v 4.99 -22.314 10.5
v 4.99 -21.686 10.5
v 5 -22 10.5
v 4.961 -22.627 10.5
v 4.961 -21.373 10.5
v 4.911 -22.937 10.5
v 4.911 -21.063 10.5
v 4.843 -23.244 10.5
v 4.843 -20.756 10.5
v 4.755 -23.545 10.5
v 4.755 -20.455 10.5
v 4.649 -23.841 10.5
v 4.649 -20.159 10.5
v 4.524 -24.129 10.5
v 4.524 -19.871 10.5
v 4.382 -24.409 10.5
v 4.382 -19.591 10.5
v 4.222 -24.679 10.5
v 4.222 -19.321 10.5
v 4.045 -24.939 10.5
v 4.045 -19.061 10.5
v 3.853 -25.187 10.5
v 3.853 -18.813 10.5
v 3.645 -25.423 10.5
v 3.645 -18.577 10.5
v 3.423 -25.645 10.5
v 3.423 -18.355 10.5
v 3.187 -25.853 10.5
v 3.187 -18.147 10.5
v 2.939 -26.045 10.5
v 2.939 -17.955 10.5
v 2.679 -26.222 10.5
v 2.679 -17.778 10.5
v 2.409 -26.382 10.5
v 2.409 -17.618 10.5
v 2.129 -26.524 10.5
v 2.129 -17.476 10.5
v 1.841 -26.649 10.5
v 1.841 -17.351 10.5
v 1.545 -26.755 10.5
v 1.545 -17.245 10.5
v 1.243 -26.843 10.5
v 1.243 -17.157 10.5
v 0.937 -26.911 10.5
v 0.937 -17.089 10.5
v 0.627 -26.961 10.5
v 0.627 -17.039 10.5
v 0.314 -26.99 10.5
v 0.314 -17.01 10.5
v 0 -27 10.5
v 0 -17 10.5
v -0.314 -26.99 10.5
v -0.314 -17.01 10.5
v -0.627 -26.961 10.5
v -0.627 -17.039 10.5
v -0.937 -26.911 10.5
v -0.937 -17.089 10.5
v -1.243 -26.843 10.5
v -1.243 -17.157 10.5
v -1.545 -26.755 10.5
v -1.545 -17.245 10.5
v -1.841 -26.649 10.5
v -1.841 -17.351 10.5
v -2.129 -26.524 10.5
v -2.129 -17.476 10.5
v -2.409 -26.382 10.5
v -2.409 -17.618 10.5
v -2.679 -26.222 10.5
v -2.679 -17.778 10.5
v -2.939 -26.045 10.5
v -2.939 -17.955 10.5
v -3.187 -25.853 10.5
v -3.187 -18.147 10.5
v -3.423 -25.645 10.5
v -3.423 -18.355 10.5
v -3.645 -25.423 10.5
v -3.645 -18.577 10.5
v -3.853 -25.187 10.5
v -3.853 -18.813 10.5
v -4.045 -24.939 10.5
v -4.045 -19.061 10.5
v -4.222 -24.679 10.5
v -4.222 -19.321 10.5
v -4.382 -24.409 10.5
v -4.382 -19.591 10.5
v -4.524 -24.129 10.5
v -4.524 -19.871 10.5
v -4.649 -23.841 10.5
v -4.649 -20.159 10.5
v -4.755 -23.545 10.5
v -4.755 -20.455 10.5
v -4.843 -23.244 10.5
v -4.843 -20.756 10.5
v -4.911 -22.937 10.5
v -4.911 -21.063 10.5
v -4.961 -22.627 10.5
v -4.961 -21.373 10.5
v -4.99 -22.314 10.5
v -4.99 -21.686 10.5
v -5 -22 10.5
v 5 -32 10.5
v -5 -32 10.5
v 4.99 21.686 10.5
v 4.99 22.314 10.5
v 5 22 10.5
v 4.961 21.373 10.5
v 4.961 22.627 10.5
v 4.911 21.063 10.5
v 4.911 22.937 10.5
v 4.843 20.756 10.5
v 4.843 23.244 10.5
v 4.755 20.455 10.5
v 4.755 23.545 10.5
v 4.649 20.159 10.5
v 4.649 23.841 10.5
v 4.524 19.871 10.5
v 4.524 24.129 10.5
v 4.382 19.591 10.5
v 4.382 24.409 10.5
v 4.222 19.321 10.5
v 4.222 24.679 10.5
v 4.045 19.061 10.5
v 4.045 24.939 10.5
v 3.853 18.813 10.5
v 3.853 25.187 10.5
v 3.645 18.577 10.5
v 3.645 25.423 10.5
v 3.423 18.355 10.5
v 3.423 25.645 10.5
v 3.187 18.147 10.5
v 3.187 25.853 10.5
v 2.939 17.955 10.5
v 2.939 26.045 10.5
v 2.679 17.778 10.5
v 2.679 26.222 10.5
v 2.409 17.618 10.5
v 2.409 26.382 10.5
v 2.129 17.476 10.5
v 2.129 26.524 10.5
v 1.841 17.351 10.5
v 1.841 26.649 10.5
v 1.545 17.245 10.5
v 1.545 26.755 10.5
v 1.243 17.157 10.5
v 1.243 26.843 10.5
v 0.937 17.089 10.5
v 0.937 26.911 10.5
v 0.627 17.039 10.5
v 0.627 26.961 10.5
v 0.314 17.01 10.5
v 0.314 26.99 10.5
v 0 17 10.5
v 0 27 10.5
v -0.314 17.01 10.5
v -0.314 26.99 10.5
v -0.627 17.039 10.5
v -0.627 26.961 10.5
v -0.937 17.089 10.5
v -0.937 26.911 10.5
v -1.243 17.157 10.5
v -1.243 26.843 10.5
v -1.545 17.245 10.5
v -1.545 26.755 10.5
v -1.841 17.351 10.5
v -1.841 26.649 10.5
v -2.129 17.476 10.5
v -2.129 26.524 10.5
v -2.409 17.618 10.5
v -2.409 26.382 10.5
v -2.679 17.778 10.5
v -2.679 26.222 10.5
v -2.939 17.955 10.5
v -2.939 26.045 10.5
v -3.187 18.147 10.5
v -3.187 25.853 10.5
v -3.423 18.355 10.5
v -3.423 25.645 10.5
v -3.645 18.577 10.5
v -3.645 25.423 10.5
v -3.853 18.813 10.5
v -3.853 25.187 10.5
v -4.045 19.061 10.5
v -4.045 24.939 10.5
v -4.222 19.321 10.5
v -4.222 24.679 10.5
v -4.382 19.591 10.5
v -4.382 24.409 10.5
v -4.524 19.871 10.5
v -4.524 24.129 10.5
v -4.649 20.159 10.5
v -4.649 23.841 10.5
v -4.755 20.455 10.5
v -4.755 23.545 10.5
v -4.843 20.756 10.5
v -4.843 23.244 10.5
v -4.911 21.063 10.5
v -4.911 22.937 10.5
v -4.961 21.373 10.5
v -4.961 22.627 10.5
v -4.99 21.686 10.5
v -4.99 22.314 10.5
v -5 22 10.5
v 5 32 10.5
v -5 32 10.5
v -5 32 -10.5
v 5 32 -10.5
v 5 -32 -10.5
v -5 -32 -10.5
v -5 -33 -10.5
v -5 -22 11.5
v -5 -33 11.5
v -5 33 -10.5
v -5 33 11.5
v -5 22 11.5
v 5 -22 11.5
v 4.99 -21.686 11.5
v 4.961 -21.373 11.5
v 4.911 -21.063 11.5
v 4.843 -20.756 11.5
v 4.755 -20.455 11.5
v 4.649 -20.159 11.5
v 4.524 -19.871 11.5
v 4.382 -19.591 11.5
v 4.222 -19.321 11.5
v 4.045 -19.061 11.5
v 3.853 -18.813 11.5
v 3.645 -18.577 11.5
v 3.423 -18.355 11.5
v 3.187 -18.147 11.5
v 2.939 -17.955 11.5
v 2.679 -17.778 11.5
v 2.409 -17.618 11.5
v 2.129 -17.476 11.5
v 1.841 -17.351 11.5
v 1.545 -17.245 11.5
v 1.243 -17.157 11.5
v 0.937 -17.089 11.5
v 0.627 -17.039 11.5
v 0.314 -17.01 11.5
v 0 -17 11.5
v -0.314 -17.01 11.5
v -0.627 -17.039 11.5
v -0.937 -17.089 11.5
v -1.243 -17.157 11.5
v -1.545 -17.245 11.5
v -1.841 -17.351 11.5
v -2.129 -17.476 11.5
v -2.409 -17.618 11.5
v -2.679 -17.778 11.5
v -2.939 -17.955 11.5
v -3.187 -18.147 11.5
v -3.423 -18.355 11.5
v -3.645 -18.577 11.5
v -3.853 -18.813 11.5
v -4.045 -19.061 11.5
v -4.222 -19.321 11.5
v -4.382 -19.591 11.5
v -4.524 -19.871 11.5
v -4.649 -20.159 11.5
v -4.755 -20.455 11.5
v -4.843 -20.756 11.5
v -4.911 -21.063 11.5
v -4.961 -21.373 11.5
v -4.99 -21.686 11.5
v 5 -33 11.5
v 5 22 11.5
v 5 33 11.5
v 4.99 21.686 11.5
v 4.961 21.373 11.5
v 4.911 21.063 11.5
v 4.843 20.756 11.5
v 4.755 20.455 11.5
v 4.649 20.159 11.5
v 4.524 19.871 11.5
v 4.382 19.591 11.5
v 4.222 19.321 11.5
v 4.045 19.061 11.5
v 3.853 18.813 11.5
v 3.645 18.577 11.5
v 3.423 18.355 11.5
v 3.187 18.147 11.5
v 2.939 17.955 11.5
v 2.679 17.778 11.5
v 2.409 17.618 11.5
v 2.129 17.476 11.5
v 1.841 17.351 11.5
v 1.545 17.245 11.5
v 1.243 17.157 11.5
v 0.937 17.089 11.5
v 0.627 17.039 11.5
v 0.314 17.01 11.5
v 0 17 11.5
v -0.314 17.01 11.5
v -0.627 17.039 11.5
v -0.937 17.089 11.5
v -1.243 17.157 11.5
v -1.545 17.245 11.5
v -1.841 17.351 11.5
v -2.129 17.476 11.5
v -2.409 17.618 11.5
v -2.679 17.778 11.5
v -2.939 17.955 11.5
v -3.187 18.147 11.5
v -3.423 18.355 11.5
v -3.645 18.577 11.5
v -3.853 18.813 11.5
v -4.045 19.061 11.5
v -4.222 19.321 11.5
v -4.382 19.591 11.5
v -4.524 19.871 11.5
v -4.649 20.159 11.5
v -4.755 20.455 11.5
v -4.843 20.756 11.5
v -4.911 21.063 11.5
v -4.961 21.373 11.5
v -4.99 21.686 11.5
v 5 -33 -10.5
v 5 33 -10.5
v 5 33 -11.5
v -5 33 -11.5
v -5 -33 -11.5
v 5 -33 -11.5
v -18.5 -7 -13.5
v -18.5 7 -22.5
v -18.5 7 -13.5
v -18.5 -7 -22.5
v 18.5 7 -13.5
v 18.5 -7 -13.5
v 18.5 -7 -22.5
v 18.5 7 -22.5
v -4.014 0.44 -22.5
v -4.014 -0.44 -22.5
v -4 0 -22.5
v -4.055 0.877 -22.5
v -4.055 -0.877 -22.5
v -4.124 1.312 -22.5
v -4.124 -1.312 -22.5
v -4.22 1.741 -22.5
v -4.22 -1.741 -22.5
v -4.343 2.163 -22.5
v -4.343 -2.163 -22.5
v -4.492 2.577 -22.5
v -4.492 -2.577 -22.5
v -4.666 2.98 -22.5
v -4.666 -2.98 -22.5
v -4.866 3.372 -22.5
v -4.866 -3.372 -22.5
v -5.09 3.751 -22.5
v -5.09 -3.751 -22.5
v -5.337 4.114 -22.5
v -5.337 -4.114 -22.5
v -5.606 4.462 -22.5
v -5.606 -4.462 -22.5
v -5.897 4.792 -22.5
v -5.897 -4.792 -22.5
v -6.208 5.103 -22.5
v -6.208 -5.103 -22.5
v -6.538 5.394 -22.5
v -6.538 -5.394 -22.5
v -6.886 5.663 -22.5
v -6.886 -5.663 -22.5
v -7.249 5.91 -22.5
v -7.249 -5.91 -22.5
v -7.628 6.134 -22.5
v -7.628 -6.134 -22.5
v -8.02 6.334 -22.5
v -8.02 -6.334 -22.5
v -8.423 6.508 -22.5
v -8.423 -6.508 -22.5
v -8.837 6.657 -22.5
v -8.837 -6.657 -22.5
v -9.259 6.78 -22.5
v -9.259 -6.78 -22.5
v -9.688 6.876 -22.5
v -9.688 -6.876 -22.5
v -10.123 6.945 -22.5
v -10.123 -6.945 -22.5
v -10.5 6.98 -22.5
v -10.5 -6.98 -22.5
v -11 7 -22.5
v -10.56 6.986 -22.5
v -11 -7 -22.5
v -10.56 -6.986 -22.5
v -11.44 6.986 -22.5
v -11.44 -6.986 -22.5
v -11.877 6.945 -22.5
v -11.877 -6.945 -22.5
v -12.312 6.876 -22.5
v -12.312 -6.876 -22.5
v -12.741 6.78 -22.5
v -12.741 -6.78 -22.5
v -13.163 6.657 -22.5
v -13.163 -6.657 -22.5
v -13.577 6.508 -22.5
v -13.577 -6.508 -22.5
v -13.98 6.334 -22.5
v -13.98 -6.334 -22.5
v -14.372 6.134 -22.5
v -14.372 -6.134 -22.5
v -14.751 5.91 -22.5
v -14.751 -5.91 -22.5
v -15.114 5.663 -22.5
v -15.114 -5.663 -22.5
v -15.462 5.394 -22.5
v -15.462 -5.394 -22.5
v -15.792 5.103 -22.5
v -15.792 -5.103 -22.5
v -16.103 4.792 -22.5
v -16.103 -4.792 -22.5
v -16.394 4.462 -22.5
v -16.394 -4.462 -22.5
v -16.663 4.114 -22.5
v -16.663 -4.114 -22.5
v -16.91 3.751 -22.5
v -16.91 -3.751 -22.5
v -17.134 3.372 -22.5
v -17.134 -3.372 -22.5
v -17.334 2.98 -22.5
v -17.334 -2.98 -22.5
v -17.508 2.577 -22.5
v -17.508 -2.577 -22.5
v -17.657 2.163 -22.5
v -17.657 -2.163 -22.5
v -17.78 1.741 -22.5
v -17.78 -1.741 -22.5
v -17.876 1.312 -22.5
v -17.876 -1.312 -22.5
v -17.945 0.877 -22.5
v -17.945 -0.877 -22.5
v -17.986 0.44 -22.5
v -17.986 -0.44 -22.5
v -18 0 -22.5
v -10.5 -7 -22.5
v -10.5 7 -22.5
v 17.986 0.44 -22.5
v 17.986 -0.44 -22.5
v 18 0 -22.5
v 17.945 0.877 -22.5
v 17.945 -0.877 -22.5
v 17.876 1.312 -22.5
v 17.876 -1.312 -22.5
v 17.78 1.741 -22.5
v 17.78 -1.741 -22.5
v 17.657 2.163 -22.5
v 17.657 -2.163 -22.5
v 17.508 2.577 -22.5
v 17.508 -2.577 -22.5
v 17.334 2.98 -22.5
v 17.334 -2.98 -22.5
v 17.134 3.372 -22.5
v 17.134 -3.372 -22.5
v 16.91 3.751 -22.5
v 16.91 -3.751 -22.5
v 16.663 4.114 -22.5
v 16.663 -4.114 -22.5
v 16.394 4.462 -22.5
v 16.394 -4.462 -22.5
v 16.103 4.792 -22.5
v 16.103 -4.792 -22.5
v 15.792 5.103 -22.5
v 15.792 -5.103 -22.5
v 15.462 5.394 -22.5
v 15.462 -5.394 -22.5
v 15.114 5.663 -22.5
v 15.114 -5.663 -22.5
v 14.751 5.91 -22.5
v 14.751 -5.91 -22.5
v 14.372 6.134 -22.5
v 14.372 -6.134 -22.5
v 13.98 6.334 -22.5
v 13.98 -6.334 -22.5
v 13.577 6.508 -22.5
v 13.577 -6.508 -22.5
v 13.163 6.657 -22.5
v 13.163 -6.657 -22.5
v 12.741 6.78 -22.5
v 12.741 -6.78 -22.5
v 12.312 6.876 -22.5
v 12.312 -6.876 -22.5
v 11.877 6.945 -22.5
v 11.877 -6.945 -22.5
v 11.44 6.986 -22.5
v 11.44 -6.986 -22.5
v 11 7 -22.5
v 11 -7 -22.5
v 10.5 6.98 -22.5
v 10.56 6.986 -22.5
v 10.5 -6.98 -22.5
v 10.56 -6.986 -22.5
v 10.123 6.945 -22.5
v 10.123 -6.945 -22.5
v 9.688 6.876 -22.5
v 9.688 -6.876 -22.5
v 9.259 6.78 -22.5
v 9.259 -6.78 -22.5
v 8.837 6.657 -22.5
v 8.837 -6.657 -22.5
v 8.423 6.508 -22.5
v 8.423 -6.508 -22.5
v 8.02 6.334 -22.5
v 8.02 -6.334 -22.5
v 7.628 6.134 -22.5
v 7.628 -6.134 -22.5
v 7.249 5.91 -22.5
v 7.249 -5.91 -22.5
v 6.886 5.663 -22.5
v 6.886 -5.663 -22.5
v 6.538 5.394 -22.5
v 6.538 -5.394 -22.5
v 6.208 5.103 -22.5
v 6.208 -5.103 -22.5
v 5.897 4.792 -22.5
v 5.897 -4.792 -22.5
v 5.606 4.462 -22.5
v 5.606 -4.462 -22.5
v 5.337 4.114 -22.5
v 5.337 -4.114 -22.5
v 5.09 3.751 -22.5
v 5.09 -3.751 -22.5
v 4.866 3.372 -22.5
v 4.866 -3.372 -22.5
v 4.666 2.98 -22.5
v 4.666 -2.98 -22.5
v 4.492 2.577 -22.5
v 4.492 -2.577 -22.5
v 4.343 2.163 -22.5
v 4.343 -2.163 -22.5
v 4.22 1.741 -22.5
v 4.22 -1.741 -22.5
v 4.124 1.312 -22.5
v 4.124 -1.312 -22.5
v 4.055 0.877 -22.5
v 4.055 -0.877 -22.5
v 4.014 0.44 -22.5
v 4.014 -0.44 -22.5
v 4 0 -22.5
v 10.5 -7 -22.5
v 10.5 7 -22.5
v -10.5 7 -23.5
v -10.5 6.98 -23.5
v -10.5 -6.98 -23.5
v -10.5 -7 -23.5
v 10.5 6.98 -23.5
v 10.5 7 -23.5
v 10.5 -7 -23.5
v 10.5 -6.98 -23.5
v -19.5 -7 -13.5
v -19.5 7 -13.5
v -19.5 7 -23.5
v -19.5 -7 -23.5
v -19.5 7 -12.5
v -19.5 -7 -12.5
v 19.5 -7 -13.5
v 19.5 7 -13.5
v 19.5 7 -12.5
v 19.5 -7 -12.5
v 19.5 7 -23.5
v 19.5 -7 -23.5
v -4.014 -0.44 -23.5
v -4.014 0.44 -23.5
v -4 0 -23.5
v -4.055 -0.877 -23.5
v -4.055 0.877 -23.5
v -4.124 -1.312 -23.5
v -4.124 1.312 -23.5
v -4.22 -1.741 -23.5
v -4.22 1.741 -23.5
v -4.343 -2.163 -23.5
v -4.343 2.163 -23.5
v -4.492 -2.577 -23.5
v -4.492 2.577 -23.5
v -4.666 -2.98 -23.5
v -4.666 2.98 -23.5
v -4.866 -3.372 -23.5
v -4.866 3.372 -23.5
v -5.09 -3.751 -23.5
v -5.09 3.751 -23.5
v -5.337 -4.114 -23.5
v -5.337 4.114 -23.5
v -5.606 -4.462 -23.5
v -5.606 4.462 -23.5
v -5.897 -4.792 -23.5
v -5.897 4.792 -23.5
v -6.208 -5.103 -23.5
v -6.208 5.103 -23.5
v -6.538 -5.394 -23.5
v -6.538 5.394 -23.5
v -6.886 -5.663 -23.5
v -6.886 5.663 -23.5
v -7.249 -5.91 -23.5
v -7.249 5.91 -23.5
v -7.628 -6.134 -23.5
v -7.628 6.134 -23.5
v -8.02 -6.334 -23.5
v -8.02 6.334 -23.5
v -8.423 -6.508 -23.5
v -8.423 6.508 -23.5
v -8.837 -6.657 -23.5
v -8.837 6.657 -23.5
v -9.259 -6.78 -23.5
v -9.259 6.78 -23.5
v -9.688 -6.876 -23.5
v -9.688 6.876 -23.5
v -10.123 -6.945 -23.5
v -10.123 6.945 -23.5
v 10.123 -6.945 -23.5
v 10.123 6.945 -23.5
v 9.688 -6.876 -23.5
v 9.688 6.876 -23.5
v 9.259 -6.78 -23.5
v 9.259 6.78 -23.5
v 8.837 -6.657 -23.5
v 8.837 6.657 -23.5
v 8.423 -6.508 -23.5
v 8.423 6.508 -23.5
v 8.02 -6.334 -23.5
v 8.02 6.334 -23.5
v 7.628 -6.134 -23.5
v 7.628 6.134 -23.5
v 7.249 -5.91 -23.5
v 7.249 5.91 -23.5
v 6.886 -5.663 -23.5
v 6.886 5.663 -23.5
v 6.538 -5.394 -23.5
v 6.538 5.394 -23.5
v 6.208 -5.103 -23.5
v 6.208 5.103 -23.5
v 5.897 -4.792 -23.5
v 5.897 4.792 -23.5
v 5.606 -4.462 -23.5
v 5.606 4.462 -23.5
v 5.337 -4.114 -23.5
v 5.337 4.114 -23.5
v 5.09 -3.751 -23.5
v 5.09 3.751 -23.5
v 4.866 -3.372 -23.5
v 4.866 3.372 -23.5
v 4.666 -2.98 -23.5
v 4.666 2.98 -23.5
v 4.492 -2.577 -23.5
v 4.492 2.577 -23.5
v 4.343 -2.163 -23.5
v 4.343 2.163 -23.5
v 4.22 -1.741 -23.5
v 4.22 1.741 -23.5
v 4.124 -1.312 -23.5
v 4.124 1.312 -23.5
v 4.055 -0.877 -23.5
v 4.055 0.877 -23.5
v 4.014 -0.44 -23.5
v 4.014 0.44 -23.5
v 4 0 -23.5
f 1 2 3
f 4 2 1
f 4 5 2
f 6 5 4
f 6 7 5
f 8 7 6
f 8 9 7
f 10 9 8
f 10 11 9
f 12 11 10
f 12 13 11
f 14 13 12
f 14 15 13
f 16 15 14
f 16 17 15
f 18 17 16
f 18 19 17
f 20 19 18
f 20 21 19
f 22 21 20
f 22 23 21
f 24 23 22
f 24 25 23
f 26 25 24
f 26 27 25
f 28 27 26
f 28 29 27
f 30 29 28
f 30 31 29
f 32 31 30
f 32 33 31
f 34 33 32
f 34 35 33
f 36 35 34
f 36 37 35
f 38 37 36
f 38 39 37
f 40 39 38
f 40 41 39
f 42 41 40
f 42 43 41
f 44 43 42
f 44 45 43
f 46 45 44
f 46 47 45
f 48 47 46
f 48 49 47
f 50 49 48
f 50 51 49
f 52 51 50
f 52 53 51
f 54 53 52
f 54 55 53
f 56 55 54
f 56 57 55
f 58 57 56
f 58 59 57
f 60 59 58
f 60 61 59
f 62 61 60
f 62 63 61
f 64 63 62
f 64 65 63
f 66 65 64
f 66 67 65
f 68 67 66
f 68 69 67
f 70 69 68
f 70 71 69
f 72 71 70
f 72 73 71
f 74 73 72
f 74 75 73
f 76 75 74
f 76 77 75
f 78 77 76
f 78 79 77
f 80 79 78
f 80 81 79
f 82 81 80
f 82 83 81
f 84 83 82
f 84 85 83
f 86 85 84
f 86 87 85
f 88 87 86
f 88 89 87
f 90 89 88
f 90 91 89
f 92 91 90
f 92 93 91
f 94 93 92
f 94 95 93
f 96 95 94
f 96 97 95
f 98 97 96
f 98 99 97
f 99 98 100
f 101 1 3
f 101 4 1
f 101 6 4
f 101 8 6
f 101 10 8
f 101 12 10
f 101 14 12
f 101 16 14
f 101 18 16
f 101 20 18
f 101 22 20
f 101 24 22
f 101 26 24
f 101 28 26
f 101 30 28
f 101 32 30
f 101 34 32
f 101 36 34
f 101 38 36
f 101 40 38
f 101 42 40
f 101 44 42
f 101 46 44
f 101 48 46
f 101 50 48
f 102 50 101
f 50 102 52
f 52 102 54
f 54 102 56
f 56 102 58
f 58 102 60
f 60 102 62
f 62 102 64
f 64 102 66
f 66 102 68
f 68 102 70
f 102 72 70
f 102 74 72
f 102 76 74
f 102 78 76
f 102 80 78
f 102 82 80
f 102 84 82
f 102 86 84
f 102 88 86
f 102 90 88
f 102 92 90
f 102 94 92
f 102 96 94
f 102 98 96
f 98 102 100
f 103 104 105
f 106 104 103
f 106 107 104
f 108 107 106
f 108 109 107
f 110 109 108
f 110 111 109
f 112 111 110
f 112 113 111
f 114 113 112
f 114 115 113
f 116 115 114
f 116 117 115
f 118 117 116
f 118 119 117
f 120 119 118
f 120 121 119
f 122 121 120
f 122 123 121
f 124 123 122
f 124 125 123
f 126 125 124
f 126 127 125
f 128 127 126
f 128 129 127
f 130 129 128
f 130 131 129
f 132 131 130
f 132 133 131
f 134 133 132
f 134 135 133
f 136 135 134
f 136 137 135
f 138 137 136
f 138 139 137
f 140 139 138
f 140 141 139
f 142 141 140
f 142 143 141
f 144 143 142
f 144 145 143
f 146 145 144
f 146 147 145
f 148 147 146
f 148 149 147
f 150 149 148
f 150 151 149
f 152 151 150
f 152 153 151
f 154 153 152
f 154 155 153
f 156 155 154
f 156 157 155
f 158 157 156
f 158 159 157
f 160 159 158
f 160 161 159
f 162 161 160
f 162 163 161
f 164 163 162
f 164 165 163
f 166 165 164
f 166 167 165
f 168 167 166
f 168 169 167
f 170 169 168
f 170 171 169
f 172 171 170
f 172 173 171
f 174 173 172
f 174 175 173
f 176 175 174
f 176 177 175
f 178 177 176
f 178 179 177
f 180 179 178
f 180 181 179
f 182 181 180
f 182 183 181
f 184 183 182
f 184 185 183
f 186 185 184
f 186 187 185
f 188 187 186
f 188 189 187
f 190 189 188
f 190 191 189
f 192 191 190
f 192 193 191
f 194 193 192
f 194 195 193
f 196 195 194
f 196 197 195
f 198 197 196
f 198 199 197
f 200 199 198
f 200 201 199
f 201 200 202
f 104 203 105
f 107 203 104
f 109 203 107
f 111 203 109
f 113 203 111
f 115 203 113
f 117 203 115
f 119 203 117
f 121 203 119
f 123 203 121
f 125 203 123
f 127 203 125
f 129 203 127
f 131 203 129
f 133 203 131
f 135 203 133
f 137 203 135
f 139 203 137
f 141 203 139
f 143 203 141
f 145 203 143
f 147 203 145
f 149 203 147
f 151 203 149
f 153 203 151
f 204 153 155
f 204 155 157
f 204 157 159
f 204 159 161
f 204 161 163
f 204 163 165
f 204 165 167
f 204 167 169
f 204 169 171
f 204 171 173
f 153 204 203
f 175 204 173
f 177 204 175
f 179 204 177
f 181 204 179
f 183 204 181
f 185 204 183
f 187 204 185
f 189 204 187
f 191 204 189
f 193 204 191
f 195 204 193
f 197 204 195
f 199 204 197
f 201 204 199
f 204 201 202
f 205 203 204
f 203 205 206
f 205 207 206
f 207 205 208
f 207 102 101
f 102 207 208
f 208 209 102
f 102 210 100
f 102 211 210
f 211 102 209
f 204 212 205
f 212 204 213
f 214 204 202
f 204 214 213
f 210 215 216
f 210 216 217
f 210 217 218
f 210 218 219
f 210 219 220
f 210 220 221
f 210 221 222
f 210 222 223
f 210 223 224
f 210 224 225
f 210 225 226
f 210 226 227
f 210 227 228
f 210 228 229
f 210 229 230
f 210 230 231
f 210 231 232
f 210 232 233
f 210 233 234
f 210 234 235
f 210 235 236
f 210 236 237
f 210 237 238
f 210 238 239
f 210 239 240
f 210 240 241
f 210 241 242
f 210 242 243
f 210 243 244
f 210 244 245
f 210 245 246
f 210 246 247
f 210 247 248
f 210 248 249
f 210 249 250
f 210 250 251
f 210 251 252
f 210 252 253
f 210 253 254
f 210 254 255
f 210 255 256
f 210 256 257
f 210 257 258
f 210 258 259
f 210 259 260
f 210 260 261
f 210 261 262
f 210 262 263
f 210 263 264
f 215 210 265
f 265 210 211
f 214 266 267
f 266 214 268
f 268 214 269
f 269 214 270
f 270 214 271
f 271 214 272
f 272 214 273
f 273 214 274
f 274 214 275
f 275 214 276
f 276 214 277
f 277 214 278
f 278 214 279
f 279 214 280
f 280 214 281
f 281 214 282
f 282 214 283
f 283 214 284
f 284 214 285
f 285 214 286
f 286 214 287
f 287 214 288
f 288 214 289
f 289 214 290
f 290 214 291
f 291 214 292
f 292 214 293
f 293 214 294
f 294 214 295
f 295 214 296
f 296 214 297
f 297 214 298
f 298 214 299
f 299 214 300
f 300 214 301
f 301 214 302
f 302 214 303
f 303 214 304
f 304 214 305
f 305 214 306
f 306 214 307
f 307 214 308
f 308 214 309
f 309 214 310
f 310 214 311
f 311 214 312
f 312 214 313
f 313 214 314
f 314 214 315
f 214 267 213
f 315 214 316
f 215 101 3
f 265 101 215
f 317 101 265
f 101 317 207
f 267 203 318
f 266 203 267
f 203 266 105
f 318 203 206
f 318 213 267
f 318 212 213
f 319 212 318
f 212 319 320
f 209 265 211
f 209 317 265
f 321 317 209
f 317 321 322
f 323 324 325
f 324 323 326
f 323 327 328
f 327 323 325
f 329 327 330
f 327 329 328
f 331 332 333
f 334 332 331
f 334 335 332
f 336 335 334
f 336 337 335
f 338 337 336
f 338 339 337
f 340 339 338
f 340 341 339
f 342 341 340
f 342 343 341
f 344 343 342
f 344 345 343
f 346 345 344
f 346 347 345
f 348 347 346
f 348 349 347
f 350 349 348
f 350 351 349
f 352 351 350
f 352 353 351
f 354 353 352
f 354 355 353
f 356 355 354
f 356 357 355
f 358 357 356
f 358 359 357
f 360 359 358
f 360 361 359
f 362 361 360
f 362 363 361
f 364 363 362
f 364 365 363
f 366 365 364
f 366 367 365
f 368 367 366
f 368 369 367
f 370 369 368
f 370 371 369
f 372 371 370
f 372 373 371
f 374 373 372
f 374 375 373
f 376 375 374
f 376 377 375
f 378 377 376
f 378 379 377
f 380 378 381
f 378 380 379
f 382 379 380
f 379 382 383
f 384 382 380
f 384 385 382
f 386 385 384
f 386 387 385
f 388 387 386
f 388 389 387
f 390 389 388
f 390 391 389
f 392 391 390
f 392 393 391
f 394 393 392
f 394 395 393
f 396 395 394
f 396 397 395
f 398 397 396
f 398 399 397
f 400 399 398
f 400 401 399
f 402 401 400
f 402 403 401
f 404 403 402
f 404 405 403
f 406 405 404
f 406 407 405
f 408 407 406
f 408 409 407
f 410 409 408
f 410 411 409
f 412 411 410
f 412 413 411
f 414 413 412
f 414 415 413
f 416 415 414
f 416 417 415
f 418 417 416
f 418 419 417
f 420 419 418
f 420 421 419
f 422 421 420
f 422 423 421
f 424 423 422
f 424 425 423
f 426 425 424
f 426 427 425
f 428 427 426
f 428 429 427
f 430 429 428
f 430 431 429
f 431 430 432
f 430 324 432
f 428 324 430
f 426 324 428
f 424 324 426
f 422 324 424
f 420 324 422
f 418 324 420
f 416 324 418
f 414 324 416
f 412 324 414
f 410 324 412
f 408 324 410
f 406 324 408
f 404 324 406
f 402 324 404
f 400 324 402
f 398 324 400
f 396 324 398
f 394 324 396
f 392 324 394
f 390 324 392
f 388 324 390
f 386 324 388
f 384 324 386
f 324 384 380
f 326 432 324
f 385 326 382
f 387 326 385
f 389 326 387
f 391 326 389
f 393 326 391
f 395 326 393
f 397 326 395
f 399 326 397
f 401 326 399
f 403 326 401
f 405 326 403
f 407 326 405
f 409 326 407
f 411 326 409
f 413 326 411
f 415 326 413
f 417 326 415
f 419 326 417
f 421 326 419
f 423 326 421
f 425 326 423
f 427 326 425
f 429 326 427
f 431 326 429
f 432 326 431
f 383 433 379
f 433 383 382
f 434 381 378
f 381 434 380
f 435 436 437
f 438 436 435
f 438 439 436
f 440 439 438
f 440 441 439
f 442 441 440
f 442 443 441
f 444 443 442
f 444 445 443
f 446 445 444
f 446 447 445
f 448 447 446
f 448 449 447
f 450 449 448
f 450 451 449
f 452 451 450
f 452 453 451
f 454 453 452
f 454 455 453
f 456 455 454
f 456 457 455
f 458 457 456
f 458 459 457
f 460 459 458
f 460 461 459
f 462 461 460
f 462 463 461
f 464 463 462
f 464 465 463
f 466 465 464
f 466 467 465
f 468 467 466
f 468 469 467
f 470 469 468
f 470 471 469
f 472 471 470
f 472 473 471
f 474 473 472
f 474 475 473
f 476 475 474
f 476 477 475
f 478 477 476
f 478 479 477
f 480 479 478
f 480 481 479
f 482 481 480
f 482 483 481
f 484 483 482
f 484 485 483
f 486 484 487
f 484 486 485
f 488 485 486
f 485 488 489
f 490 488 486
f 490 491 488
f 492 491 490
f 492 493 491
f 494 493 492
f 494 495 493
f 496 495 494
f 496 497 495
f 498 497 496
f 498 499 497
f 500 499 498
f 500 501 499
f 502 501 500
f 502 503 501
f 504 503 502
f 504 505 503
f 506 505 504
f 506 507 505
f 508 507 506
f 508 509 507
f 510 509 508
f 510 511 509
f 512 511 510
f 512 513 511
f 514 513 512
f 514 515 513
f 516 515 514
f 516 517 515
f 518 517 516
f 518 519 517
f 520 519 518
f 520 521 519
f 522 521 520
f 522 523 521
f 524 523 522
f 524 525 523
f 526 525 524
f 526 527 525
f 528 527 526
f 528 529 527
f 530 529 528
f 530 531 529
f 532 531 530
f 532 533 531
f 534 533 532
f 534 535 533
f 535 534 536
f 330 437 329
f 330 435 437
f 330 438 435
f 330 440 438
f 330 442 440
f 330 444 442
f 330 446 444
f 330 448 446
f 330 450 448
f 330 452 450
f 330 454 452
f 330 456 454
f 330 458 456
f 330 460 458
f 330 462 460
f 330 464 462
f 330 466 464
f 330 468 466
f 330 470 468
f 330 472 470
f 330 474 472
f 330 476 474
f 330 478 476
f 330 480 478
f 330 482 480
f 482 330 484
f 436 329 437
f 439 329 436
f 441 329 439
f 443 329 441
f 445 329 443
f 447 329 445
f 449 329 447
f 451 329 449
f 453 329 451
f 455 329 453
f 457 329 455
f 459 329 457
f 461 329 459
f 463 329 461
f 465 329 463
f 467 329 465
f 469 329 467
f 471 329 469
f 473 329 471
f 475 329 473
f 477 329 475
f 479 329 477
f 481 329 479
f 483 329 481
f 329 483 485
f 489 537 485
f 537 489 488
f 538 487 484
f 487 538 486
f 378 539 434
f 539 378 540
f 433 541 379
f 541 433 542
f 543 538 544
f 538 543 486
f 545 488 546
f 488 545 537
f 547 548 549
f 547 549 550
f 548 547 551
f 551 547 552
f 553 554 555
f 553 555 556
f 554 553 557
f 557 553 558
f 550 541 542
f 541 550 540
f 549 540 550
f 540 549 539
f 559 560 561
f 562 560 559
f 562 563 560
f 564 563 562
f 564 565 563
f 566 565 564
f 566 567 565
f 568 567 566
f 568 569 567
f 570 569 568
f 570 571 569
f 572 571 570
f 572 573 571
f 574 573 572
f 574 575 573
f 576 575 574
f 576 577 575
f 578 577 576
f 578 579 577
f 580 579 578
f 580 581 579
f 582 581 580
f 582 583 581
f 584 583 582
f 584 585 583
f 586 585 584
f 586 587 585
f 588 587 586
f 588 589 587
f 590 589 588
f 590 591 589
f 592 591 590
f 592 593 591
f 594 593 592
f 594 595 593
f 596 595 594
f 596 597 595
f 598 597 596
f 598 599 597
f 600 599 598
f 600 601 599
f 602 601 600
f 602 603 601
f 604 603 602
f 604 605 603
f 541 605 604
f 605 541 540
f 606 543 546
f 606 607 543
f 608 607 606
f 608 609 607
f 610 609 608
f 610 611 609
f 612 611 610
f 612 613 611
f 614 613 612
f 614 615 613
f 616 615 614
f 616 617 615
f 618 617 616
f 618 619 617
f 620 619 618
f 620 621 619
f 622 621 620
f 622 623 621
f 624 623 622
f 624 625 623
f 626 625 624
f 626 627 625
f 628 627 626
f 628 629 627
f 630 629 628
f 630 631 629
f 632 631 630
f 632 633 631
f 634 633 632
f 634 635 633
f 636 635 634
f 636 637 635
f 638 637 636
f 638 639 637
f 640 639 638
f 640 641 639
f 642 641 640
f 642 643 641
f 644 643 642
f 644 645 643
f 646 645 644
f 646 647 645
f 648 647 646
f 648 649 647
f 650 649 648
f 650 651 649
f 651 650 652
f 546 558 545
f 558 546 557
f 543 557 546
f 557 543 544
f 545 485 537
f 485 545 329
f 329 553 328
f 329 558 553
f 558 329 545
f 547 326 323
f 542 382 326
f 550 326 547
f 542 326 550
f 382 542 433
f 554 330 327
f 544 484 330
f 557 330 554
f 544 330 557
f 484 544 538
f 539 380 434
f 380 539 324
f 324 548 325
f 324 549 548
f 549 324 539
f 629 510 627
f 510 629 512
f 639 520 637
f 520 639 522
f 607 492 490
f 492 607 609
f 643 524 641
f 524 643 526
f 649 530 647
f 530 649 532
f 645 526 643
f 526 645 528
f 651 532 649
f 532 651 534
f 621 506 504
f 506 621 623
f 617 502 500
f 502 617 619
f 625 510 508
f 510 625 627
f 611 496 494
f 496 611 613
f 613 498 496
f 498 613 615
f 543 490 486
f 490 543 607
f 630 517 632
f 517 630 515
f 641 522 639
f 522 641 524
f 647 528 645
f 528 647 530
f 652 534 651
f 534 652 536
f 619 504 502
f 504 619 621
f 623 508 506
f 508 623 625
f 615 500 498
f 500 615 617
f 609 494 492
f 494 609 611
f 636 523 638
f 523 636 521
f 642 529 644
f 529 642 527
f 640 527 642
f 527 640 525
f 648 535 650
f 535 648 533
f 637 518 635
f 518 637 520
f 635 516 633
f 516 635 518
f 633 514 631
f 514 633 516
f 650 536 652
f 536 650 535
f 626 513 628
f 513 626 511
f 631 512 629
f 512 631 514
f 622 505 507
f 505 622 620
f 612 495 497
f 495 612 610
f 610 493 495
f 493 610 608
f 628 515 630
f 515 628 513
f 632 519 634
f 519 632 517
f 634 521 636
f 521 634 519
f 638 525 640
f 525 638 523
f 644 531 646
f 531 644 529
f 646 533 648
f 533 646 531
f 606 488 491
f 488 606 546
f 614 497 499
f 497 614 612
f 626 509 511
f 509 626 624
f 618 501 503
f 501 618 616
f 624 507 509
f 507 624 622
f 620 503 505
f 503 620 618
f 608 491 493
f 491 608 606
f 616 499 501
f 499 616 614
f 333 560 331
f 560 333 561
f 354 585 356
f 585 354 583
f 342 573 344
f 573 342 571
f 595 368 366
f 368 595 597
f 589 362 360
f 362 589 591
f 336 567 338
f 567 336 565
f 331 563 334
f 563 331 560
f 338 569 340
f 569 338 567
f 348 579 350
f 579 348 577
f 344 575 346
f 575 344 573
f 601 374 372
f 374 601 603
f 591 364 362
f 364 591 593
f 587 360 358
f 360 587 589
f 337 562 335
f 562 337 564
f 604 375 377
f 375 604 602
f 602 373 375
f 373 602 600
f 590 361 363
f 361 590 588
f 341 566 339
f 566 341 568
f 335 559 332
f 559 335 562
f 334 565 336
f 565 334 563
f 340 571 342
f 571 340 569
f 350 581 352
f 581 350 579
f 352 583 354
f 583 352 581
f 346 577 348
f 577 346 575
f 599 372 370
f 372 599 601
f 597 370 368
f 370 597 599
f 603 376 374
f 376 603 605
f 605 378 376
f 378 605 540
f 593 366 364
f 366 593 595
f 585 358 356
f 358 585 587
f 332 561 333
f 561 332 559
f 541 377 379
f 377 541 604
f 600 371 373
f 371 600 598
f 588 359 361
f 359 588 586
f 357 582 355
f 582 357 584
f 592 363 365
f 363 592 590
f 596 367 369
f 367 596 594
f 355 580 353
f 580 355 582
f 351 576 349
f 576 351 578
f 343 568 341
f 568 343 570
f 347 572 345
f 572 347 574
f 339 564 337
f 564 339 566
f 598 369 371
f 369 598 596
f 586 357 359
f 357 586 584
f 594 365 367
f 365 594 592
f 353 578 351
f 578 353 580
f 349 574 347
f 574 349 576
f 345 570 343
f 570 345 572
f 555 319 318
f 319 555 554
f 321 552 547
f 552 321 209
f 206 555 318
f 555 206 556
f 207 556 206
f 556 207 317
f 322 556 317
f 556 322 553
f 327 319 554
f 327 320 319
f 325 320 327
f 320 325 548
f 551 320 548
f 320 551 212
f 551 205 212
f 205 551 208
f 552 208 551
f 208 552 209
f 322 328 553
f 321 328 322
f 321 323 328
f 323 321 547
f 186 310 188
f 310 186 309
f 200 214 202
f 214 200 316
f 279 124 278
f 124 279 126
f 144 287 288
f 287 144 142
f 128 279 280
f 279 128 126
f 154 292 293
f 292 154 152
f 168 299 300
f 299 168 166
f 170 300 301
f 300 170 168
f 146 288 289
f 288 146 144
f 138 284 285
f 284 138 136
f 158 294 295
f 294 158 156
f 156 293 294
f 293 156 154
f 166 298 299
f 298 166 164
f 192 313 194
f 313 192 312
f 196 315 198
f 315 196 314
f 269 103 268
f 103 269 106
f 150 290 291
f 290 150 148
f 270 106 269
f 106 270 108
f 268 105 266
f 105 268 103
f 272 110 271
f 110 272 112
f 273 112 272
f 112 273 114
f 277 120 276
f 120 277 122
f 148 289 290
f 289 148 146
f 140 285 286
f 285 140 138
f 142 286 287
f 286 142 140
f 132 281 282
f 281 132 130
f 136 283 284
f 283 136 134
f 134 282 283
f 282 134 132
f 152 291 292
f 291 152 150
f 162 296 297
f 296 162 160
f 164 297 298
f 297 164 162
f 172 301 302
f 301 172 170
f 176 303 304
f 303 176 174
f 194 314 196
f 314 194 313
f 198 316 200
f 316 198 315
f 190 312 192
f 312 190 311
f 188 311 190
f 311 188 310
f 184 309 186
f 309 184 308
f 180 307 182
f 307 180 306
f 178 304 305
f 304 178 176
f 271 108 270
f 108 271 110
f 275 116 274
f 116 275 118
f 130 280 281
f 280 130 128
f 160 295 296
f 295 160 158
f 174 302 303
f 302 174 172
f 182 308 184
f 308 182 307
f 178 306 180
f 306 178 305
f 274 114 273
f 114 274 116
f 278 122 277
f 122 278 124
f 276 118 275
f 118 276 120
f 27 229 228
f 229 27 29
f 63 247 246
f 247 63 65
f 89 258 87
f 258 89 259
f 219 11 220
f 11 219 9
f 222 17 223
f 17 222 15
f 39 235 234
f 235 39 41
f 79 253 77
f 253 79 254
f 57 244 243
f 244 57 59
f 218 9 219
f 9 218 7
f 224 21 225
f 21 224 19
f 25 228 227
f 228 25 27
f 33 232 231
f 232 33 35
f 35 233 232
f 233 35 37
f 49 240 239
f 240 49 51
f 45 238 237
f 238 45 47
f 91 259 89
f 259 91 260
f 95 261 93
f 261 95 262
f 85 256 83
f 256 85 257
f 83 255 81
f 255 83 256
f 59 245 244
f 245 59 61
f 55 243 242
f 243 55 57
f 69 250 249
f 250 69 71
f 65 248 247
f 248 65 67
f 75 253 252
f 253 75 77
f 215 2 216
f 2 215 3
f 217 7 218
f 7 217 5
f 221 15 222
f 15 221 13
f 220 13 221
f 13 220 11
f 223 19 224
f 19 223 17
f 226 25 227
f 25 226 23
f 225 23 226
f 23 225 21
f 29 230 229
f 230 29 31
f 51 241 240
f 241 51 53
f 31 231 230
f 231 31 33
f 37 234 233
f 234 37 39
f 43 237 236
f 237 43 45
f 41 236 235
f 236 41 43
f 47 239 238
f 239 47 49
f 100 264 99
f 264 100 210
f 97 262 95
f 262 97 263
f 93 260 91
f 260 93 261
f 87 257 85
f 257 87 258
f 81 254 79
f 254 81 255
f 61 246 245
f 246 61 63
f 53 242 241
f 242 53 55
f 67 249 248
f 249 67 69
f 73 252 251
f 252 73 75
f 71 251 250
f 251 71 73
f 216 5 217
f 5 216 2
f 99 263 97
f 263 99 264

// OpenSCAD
module holder() {
    difference() {
        cube([10,66,23], center = true);
        union() {
            cube([30,64,21], center = true);
            translate([0,0,2]) cube([30,44,21], center = true);
        }
    }
}

module camera_holder() {
    union(){
        translate([0,0,-18]) difference() {
            cube([39,14,11], center = true);
            union() {
                cube([37,30,9], center = true);
                translate([0,0,-2]) cube([21,30,9], center = true);
            }
        }
        
        translate([11, 0,-23.5]) cylinder(r=7,h=1, $fn=100);
        translate([-11, 0,-23.5]) cylinder(r=7,h=1, $fn=100);
    }
}

module connector() {
    hull() {
        translate([0,0,-13] ) cube([39,14,1], center = true);
        translate([0,0,-11] ) cube([10,66,1], center = true);
    }
}

union() {
    holder();
    camera_holder();
    connector();
    translate([0, 22,10.5]) cylinder(r=5,h=1, $fn=100);
    translate([0, -22,10.5]) cylinder(r=5,h=1, $fn=100);
}
